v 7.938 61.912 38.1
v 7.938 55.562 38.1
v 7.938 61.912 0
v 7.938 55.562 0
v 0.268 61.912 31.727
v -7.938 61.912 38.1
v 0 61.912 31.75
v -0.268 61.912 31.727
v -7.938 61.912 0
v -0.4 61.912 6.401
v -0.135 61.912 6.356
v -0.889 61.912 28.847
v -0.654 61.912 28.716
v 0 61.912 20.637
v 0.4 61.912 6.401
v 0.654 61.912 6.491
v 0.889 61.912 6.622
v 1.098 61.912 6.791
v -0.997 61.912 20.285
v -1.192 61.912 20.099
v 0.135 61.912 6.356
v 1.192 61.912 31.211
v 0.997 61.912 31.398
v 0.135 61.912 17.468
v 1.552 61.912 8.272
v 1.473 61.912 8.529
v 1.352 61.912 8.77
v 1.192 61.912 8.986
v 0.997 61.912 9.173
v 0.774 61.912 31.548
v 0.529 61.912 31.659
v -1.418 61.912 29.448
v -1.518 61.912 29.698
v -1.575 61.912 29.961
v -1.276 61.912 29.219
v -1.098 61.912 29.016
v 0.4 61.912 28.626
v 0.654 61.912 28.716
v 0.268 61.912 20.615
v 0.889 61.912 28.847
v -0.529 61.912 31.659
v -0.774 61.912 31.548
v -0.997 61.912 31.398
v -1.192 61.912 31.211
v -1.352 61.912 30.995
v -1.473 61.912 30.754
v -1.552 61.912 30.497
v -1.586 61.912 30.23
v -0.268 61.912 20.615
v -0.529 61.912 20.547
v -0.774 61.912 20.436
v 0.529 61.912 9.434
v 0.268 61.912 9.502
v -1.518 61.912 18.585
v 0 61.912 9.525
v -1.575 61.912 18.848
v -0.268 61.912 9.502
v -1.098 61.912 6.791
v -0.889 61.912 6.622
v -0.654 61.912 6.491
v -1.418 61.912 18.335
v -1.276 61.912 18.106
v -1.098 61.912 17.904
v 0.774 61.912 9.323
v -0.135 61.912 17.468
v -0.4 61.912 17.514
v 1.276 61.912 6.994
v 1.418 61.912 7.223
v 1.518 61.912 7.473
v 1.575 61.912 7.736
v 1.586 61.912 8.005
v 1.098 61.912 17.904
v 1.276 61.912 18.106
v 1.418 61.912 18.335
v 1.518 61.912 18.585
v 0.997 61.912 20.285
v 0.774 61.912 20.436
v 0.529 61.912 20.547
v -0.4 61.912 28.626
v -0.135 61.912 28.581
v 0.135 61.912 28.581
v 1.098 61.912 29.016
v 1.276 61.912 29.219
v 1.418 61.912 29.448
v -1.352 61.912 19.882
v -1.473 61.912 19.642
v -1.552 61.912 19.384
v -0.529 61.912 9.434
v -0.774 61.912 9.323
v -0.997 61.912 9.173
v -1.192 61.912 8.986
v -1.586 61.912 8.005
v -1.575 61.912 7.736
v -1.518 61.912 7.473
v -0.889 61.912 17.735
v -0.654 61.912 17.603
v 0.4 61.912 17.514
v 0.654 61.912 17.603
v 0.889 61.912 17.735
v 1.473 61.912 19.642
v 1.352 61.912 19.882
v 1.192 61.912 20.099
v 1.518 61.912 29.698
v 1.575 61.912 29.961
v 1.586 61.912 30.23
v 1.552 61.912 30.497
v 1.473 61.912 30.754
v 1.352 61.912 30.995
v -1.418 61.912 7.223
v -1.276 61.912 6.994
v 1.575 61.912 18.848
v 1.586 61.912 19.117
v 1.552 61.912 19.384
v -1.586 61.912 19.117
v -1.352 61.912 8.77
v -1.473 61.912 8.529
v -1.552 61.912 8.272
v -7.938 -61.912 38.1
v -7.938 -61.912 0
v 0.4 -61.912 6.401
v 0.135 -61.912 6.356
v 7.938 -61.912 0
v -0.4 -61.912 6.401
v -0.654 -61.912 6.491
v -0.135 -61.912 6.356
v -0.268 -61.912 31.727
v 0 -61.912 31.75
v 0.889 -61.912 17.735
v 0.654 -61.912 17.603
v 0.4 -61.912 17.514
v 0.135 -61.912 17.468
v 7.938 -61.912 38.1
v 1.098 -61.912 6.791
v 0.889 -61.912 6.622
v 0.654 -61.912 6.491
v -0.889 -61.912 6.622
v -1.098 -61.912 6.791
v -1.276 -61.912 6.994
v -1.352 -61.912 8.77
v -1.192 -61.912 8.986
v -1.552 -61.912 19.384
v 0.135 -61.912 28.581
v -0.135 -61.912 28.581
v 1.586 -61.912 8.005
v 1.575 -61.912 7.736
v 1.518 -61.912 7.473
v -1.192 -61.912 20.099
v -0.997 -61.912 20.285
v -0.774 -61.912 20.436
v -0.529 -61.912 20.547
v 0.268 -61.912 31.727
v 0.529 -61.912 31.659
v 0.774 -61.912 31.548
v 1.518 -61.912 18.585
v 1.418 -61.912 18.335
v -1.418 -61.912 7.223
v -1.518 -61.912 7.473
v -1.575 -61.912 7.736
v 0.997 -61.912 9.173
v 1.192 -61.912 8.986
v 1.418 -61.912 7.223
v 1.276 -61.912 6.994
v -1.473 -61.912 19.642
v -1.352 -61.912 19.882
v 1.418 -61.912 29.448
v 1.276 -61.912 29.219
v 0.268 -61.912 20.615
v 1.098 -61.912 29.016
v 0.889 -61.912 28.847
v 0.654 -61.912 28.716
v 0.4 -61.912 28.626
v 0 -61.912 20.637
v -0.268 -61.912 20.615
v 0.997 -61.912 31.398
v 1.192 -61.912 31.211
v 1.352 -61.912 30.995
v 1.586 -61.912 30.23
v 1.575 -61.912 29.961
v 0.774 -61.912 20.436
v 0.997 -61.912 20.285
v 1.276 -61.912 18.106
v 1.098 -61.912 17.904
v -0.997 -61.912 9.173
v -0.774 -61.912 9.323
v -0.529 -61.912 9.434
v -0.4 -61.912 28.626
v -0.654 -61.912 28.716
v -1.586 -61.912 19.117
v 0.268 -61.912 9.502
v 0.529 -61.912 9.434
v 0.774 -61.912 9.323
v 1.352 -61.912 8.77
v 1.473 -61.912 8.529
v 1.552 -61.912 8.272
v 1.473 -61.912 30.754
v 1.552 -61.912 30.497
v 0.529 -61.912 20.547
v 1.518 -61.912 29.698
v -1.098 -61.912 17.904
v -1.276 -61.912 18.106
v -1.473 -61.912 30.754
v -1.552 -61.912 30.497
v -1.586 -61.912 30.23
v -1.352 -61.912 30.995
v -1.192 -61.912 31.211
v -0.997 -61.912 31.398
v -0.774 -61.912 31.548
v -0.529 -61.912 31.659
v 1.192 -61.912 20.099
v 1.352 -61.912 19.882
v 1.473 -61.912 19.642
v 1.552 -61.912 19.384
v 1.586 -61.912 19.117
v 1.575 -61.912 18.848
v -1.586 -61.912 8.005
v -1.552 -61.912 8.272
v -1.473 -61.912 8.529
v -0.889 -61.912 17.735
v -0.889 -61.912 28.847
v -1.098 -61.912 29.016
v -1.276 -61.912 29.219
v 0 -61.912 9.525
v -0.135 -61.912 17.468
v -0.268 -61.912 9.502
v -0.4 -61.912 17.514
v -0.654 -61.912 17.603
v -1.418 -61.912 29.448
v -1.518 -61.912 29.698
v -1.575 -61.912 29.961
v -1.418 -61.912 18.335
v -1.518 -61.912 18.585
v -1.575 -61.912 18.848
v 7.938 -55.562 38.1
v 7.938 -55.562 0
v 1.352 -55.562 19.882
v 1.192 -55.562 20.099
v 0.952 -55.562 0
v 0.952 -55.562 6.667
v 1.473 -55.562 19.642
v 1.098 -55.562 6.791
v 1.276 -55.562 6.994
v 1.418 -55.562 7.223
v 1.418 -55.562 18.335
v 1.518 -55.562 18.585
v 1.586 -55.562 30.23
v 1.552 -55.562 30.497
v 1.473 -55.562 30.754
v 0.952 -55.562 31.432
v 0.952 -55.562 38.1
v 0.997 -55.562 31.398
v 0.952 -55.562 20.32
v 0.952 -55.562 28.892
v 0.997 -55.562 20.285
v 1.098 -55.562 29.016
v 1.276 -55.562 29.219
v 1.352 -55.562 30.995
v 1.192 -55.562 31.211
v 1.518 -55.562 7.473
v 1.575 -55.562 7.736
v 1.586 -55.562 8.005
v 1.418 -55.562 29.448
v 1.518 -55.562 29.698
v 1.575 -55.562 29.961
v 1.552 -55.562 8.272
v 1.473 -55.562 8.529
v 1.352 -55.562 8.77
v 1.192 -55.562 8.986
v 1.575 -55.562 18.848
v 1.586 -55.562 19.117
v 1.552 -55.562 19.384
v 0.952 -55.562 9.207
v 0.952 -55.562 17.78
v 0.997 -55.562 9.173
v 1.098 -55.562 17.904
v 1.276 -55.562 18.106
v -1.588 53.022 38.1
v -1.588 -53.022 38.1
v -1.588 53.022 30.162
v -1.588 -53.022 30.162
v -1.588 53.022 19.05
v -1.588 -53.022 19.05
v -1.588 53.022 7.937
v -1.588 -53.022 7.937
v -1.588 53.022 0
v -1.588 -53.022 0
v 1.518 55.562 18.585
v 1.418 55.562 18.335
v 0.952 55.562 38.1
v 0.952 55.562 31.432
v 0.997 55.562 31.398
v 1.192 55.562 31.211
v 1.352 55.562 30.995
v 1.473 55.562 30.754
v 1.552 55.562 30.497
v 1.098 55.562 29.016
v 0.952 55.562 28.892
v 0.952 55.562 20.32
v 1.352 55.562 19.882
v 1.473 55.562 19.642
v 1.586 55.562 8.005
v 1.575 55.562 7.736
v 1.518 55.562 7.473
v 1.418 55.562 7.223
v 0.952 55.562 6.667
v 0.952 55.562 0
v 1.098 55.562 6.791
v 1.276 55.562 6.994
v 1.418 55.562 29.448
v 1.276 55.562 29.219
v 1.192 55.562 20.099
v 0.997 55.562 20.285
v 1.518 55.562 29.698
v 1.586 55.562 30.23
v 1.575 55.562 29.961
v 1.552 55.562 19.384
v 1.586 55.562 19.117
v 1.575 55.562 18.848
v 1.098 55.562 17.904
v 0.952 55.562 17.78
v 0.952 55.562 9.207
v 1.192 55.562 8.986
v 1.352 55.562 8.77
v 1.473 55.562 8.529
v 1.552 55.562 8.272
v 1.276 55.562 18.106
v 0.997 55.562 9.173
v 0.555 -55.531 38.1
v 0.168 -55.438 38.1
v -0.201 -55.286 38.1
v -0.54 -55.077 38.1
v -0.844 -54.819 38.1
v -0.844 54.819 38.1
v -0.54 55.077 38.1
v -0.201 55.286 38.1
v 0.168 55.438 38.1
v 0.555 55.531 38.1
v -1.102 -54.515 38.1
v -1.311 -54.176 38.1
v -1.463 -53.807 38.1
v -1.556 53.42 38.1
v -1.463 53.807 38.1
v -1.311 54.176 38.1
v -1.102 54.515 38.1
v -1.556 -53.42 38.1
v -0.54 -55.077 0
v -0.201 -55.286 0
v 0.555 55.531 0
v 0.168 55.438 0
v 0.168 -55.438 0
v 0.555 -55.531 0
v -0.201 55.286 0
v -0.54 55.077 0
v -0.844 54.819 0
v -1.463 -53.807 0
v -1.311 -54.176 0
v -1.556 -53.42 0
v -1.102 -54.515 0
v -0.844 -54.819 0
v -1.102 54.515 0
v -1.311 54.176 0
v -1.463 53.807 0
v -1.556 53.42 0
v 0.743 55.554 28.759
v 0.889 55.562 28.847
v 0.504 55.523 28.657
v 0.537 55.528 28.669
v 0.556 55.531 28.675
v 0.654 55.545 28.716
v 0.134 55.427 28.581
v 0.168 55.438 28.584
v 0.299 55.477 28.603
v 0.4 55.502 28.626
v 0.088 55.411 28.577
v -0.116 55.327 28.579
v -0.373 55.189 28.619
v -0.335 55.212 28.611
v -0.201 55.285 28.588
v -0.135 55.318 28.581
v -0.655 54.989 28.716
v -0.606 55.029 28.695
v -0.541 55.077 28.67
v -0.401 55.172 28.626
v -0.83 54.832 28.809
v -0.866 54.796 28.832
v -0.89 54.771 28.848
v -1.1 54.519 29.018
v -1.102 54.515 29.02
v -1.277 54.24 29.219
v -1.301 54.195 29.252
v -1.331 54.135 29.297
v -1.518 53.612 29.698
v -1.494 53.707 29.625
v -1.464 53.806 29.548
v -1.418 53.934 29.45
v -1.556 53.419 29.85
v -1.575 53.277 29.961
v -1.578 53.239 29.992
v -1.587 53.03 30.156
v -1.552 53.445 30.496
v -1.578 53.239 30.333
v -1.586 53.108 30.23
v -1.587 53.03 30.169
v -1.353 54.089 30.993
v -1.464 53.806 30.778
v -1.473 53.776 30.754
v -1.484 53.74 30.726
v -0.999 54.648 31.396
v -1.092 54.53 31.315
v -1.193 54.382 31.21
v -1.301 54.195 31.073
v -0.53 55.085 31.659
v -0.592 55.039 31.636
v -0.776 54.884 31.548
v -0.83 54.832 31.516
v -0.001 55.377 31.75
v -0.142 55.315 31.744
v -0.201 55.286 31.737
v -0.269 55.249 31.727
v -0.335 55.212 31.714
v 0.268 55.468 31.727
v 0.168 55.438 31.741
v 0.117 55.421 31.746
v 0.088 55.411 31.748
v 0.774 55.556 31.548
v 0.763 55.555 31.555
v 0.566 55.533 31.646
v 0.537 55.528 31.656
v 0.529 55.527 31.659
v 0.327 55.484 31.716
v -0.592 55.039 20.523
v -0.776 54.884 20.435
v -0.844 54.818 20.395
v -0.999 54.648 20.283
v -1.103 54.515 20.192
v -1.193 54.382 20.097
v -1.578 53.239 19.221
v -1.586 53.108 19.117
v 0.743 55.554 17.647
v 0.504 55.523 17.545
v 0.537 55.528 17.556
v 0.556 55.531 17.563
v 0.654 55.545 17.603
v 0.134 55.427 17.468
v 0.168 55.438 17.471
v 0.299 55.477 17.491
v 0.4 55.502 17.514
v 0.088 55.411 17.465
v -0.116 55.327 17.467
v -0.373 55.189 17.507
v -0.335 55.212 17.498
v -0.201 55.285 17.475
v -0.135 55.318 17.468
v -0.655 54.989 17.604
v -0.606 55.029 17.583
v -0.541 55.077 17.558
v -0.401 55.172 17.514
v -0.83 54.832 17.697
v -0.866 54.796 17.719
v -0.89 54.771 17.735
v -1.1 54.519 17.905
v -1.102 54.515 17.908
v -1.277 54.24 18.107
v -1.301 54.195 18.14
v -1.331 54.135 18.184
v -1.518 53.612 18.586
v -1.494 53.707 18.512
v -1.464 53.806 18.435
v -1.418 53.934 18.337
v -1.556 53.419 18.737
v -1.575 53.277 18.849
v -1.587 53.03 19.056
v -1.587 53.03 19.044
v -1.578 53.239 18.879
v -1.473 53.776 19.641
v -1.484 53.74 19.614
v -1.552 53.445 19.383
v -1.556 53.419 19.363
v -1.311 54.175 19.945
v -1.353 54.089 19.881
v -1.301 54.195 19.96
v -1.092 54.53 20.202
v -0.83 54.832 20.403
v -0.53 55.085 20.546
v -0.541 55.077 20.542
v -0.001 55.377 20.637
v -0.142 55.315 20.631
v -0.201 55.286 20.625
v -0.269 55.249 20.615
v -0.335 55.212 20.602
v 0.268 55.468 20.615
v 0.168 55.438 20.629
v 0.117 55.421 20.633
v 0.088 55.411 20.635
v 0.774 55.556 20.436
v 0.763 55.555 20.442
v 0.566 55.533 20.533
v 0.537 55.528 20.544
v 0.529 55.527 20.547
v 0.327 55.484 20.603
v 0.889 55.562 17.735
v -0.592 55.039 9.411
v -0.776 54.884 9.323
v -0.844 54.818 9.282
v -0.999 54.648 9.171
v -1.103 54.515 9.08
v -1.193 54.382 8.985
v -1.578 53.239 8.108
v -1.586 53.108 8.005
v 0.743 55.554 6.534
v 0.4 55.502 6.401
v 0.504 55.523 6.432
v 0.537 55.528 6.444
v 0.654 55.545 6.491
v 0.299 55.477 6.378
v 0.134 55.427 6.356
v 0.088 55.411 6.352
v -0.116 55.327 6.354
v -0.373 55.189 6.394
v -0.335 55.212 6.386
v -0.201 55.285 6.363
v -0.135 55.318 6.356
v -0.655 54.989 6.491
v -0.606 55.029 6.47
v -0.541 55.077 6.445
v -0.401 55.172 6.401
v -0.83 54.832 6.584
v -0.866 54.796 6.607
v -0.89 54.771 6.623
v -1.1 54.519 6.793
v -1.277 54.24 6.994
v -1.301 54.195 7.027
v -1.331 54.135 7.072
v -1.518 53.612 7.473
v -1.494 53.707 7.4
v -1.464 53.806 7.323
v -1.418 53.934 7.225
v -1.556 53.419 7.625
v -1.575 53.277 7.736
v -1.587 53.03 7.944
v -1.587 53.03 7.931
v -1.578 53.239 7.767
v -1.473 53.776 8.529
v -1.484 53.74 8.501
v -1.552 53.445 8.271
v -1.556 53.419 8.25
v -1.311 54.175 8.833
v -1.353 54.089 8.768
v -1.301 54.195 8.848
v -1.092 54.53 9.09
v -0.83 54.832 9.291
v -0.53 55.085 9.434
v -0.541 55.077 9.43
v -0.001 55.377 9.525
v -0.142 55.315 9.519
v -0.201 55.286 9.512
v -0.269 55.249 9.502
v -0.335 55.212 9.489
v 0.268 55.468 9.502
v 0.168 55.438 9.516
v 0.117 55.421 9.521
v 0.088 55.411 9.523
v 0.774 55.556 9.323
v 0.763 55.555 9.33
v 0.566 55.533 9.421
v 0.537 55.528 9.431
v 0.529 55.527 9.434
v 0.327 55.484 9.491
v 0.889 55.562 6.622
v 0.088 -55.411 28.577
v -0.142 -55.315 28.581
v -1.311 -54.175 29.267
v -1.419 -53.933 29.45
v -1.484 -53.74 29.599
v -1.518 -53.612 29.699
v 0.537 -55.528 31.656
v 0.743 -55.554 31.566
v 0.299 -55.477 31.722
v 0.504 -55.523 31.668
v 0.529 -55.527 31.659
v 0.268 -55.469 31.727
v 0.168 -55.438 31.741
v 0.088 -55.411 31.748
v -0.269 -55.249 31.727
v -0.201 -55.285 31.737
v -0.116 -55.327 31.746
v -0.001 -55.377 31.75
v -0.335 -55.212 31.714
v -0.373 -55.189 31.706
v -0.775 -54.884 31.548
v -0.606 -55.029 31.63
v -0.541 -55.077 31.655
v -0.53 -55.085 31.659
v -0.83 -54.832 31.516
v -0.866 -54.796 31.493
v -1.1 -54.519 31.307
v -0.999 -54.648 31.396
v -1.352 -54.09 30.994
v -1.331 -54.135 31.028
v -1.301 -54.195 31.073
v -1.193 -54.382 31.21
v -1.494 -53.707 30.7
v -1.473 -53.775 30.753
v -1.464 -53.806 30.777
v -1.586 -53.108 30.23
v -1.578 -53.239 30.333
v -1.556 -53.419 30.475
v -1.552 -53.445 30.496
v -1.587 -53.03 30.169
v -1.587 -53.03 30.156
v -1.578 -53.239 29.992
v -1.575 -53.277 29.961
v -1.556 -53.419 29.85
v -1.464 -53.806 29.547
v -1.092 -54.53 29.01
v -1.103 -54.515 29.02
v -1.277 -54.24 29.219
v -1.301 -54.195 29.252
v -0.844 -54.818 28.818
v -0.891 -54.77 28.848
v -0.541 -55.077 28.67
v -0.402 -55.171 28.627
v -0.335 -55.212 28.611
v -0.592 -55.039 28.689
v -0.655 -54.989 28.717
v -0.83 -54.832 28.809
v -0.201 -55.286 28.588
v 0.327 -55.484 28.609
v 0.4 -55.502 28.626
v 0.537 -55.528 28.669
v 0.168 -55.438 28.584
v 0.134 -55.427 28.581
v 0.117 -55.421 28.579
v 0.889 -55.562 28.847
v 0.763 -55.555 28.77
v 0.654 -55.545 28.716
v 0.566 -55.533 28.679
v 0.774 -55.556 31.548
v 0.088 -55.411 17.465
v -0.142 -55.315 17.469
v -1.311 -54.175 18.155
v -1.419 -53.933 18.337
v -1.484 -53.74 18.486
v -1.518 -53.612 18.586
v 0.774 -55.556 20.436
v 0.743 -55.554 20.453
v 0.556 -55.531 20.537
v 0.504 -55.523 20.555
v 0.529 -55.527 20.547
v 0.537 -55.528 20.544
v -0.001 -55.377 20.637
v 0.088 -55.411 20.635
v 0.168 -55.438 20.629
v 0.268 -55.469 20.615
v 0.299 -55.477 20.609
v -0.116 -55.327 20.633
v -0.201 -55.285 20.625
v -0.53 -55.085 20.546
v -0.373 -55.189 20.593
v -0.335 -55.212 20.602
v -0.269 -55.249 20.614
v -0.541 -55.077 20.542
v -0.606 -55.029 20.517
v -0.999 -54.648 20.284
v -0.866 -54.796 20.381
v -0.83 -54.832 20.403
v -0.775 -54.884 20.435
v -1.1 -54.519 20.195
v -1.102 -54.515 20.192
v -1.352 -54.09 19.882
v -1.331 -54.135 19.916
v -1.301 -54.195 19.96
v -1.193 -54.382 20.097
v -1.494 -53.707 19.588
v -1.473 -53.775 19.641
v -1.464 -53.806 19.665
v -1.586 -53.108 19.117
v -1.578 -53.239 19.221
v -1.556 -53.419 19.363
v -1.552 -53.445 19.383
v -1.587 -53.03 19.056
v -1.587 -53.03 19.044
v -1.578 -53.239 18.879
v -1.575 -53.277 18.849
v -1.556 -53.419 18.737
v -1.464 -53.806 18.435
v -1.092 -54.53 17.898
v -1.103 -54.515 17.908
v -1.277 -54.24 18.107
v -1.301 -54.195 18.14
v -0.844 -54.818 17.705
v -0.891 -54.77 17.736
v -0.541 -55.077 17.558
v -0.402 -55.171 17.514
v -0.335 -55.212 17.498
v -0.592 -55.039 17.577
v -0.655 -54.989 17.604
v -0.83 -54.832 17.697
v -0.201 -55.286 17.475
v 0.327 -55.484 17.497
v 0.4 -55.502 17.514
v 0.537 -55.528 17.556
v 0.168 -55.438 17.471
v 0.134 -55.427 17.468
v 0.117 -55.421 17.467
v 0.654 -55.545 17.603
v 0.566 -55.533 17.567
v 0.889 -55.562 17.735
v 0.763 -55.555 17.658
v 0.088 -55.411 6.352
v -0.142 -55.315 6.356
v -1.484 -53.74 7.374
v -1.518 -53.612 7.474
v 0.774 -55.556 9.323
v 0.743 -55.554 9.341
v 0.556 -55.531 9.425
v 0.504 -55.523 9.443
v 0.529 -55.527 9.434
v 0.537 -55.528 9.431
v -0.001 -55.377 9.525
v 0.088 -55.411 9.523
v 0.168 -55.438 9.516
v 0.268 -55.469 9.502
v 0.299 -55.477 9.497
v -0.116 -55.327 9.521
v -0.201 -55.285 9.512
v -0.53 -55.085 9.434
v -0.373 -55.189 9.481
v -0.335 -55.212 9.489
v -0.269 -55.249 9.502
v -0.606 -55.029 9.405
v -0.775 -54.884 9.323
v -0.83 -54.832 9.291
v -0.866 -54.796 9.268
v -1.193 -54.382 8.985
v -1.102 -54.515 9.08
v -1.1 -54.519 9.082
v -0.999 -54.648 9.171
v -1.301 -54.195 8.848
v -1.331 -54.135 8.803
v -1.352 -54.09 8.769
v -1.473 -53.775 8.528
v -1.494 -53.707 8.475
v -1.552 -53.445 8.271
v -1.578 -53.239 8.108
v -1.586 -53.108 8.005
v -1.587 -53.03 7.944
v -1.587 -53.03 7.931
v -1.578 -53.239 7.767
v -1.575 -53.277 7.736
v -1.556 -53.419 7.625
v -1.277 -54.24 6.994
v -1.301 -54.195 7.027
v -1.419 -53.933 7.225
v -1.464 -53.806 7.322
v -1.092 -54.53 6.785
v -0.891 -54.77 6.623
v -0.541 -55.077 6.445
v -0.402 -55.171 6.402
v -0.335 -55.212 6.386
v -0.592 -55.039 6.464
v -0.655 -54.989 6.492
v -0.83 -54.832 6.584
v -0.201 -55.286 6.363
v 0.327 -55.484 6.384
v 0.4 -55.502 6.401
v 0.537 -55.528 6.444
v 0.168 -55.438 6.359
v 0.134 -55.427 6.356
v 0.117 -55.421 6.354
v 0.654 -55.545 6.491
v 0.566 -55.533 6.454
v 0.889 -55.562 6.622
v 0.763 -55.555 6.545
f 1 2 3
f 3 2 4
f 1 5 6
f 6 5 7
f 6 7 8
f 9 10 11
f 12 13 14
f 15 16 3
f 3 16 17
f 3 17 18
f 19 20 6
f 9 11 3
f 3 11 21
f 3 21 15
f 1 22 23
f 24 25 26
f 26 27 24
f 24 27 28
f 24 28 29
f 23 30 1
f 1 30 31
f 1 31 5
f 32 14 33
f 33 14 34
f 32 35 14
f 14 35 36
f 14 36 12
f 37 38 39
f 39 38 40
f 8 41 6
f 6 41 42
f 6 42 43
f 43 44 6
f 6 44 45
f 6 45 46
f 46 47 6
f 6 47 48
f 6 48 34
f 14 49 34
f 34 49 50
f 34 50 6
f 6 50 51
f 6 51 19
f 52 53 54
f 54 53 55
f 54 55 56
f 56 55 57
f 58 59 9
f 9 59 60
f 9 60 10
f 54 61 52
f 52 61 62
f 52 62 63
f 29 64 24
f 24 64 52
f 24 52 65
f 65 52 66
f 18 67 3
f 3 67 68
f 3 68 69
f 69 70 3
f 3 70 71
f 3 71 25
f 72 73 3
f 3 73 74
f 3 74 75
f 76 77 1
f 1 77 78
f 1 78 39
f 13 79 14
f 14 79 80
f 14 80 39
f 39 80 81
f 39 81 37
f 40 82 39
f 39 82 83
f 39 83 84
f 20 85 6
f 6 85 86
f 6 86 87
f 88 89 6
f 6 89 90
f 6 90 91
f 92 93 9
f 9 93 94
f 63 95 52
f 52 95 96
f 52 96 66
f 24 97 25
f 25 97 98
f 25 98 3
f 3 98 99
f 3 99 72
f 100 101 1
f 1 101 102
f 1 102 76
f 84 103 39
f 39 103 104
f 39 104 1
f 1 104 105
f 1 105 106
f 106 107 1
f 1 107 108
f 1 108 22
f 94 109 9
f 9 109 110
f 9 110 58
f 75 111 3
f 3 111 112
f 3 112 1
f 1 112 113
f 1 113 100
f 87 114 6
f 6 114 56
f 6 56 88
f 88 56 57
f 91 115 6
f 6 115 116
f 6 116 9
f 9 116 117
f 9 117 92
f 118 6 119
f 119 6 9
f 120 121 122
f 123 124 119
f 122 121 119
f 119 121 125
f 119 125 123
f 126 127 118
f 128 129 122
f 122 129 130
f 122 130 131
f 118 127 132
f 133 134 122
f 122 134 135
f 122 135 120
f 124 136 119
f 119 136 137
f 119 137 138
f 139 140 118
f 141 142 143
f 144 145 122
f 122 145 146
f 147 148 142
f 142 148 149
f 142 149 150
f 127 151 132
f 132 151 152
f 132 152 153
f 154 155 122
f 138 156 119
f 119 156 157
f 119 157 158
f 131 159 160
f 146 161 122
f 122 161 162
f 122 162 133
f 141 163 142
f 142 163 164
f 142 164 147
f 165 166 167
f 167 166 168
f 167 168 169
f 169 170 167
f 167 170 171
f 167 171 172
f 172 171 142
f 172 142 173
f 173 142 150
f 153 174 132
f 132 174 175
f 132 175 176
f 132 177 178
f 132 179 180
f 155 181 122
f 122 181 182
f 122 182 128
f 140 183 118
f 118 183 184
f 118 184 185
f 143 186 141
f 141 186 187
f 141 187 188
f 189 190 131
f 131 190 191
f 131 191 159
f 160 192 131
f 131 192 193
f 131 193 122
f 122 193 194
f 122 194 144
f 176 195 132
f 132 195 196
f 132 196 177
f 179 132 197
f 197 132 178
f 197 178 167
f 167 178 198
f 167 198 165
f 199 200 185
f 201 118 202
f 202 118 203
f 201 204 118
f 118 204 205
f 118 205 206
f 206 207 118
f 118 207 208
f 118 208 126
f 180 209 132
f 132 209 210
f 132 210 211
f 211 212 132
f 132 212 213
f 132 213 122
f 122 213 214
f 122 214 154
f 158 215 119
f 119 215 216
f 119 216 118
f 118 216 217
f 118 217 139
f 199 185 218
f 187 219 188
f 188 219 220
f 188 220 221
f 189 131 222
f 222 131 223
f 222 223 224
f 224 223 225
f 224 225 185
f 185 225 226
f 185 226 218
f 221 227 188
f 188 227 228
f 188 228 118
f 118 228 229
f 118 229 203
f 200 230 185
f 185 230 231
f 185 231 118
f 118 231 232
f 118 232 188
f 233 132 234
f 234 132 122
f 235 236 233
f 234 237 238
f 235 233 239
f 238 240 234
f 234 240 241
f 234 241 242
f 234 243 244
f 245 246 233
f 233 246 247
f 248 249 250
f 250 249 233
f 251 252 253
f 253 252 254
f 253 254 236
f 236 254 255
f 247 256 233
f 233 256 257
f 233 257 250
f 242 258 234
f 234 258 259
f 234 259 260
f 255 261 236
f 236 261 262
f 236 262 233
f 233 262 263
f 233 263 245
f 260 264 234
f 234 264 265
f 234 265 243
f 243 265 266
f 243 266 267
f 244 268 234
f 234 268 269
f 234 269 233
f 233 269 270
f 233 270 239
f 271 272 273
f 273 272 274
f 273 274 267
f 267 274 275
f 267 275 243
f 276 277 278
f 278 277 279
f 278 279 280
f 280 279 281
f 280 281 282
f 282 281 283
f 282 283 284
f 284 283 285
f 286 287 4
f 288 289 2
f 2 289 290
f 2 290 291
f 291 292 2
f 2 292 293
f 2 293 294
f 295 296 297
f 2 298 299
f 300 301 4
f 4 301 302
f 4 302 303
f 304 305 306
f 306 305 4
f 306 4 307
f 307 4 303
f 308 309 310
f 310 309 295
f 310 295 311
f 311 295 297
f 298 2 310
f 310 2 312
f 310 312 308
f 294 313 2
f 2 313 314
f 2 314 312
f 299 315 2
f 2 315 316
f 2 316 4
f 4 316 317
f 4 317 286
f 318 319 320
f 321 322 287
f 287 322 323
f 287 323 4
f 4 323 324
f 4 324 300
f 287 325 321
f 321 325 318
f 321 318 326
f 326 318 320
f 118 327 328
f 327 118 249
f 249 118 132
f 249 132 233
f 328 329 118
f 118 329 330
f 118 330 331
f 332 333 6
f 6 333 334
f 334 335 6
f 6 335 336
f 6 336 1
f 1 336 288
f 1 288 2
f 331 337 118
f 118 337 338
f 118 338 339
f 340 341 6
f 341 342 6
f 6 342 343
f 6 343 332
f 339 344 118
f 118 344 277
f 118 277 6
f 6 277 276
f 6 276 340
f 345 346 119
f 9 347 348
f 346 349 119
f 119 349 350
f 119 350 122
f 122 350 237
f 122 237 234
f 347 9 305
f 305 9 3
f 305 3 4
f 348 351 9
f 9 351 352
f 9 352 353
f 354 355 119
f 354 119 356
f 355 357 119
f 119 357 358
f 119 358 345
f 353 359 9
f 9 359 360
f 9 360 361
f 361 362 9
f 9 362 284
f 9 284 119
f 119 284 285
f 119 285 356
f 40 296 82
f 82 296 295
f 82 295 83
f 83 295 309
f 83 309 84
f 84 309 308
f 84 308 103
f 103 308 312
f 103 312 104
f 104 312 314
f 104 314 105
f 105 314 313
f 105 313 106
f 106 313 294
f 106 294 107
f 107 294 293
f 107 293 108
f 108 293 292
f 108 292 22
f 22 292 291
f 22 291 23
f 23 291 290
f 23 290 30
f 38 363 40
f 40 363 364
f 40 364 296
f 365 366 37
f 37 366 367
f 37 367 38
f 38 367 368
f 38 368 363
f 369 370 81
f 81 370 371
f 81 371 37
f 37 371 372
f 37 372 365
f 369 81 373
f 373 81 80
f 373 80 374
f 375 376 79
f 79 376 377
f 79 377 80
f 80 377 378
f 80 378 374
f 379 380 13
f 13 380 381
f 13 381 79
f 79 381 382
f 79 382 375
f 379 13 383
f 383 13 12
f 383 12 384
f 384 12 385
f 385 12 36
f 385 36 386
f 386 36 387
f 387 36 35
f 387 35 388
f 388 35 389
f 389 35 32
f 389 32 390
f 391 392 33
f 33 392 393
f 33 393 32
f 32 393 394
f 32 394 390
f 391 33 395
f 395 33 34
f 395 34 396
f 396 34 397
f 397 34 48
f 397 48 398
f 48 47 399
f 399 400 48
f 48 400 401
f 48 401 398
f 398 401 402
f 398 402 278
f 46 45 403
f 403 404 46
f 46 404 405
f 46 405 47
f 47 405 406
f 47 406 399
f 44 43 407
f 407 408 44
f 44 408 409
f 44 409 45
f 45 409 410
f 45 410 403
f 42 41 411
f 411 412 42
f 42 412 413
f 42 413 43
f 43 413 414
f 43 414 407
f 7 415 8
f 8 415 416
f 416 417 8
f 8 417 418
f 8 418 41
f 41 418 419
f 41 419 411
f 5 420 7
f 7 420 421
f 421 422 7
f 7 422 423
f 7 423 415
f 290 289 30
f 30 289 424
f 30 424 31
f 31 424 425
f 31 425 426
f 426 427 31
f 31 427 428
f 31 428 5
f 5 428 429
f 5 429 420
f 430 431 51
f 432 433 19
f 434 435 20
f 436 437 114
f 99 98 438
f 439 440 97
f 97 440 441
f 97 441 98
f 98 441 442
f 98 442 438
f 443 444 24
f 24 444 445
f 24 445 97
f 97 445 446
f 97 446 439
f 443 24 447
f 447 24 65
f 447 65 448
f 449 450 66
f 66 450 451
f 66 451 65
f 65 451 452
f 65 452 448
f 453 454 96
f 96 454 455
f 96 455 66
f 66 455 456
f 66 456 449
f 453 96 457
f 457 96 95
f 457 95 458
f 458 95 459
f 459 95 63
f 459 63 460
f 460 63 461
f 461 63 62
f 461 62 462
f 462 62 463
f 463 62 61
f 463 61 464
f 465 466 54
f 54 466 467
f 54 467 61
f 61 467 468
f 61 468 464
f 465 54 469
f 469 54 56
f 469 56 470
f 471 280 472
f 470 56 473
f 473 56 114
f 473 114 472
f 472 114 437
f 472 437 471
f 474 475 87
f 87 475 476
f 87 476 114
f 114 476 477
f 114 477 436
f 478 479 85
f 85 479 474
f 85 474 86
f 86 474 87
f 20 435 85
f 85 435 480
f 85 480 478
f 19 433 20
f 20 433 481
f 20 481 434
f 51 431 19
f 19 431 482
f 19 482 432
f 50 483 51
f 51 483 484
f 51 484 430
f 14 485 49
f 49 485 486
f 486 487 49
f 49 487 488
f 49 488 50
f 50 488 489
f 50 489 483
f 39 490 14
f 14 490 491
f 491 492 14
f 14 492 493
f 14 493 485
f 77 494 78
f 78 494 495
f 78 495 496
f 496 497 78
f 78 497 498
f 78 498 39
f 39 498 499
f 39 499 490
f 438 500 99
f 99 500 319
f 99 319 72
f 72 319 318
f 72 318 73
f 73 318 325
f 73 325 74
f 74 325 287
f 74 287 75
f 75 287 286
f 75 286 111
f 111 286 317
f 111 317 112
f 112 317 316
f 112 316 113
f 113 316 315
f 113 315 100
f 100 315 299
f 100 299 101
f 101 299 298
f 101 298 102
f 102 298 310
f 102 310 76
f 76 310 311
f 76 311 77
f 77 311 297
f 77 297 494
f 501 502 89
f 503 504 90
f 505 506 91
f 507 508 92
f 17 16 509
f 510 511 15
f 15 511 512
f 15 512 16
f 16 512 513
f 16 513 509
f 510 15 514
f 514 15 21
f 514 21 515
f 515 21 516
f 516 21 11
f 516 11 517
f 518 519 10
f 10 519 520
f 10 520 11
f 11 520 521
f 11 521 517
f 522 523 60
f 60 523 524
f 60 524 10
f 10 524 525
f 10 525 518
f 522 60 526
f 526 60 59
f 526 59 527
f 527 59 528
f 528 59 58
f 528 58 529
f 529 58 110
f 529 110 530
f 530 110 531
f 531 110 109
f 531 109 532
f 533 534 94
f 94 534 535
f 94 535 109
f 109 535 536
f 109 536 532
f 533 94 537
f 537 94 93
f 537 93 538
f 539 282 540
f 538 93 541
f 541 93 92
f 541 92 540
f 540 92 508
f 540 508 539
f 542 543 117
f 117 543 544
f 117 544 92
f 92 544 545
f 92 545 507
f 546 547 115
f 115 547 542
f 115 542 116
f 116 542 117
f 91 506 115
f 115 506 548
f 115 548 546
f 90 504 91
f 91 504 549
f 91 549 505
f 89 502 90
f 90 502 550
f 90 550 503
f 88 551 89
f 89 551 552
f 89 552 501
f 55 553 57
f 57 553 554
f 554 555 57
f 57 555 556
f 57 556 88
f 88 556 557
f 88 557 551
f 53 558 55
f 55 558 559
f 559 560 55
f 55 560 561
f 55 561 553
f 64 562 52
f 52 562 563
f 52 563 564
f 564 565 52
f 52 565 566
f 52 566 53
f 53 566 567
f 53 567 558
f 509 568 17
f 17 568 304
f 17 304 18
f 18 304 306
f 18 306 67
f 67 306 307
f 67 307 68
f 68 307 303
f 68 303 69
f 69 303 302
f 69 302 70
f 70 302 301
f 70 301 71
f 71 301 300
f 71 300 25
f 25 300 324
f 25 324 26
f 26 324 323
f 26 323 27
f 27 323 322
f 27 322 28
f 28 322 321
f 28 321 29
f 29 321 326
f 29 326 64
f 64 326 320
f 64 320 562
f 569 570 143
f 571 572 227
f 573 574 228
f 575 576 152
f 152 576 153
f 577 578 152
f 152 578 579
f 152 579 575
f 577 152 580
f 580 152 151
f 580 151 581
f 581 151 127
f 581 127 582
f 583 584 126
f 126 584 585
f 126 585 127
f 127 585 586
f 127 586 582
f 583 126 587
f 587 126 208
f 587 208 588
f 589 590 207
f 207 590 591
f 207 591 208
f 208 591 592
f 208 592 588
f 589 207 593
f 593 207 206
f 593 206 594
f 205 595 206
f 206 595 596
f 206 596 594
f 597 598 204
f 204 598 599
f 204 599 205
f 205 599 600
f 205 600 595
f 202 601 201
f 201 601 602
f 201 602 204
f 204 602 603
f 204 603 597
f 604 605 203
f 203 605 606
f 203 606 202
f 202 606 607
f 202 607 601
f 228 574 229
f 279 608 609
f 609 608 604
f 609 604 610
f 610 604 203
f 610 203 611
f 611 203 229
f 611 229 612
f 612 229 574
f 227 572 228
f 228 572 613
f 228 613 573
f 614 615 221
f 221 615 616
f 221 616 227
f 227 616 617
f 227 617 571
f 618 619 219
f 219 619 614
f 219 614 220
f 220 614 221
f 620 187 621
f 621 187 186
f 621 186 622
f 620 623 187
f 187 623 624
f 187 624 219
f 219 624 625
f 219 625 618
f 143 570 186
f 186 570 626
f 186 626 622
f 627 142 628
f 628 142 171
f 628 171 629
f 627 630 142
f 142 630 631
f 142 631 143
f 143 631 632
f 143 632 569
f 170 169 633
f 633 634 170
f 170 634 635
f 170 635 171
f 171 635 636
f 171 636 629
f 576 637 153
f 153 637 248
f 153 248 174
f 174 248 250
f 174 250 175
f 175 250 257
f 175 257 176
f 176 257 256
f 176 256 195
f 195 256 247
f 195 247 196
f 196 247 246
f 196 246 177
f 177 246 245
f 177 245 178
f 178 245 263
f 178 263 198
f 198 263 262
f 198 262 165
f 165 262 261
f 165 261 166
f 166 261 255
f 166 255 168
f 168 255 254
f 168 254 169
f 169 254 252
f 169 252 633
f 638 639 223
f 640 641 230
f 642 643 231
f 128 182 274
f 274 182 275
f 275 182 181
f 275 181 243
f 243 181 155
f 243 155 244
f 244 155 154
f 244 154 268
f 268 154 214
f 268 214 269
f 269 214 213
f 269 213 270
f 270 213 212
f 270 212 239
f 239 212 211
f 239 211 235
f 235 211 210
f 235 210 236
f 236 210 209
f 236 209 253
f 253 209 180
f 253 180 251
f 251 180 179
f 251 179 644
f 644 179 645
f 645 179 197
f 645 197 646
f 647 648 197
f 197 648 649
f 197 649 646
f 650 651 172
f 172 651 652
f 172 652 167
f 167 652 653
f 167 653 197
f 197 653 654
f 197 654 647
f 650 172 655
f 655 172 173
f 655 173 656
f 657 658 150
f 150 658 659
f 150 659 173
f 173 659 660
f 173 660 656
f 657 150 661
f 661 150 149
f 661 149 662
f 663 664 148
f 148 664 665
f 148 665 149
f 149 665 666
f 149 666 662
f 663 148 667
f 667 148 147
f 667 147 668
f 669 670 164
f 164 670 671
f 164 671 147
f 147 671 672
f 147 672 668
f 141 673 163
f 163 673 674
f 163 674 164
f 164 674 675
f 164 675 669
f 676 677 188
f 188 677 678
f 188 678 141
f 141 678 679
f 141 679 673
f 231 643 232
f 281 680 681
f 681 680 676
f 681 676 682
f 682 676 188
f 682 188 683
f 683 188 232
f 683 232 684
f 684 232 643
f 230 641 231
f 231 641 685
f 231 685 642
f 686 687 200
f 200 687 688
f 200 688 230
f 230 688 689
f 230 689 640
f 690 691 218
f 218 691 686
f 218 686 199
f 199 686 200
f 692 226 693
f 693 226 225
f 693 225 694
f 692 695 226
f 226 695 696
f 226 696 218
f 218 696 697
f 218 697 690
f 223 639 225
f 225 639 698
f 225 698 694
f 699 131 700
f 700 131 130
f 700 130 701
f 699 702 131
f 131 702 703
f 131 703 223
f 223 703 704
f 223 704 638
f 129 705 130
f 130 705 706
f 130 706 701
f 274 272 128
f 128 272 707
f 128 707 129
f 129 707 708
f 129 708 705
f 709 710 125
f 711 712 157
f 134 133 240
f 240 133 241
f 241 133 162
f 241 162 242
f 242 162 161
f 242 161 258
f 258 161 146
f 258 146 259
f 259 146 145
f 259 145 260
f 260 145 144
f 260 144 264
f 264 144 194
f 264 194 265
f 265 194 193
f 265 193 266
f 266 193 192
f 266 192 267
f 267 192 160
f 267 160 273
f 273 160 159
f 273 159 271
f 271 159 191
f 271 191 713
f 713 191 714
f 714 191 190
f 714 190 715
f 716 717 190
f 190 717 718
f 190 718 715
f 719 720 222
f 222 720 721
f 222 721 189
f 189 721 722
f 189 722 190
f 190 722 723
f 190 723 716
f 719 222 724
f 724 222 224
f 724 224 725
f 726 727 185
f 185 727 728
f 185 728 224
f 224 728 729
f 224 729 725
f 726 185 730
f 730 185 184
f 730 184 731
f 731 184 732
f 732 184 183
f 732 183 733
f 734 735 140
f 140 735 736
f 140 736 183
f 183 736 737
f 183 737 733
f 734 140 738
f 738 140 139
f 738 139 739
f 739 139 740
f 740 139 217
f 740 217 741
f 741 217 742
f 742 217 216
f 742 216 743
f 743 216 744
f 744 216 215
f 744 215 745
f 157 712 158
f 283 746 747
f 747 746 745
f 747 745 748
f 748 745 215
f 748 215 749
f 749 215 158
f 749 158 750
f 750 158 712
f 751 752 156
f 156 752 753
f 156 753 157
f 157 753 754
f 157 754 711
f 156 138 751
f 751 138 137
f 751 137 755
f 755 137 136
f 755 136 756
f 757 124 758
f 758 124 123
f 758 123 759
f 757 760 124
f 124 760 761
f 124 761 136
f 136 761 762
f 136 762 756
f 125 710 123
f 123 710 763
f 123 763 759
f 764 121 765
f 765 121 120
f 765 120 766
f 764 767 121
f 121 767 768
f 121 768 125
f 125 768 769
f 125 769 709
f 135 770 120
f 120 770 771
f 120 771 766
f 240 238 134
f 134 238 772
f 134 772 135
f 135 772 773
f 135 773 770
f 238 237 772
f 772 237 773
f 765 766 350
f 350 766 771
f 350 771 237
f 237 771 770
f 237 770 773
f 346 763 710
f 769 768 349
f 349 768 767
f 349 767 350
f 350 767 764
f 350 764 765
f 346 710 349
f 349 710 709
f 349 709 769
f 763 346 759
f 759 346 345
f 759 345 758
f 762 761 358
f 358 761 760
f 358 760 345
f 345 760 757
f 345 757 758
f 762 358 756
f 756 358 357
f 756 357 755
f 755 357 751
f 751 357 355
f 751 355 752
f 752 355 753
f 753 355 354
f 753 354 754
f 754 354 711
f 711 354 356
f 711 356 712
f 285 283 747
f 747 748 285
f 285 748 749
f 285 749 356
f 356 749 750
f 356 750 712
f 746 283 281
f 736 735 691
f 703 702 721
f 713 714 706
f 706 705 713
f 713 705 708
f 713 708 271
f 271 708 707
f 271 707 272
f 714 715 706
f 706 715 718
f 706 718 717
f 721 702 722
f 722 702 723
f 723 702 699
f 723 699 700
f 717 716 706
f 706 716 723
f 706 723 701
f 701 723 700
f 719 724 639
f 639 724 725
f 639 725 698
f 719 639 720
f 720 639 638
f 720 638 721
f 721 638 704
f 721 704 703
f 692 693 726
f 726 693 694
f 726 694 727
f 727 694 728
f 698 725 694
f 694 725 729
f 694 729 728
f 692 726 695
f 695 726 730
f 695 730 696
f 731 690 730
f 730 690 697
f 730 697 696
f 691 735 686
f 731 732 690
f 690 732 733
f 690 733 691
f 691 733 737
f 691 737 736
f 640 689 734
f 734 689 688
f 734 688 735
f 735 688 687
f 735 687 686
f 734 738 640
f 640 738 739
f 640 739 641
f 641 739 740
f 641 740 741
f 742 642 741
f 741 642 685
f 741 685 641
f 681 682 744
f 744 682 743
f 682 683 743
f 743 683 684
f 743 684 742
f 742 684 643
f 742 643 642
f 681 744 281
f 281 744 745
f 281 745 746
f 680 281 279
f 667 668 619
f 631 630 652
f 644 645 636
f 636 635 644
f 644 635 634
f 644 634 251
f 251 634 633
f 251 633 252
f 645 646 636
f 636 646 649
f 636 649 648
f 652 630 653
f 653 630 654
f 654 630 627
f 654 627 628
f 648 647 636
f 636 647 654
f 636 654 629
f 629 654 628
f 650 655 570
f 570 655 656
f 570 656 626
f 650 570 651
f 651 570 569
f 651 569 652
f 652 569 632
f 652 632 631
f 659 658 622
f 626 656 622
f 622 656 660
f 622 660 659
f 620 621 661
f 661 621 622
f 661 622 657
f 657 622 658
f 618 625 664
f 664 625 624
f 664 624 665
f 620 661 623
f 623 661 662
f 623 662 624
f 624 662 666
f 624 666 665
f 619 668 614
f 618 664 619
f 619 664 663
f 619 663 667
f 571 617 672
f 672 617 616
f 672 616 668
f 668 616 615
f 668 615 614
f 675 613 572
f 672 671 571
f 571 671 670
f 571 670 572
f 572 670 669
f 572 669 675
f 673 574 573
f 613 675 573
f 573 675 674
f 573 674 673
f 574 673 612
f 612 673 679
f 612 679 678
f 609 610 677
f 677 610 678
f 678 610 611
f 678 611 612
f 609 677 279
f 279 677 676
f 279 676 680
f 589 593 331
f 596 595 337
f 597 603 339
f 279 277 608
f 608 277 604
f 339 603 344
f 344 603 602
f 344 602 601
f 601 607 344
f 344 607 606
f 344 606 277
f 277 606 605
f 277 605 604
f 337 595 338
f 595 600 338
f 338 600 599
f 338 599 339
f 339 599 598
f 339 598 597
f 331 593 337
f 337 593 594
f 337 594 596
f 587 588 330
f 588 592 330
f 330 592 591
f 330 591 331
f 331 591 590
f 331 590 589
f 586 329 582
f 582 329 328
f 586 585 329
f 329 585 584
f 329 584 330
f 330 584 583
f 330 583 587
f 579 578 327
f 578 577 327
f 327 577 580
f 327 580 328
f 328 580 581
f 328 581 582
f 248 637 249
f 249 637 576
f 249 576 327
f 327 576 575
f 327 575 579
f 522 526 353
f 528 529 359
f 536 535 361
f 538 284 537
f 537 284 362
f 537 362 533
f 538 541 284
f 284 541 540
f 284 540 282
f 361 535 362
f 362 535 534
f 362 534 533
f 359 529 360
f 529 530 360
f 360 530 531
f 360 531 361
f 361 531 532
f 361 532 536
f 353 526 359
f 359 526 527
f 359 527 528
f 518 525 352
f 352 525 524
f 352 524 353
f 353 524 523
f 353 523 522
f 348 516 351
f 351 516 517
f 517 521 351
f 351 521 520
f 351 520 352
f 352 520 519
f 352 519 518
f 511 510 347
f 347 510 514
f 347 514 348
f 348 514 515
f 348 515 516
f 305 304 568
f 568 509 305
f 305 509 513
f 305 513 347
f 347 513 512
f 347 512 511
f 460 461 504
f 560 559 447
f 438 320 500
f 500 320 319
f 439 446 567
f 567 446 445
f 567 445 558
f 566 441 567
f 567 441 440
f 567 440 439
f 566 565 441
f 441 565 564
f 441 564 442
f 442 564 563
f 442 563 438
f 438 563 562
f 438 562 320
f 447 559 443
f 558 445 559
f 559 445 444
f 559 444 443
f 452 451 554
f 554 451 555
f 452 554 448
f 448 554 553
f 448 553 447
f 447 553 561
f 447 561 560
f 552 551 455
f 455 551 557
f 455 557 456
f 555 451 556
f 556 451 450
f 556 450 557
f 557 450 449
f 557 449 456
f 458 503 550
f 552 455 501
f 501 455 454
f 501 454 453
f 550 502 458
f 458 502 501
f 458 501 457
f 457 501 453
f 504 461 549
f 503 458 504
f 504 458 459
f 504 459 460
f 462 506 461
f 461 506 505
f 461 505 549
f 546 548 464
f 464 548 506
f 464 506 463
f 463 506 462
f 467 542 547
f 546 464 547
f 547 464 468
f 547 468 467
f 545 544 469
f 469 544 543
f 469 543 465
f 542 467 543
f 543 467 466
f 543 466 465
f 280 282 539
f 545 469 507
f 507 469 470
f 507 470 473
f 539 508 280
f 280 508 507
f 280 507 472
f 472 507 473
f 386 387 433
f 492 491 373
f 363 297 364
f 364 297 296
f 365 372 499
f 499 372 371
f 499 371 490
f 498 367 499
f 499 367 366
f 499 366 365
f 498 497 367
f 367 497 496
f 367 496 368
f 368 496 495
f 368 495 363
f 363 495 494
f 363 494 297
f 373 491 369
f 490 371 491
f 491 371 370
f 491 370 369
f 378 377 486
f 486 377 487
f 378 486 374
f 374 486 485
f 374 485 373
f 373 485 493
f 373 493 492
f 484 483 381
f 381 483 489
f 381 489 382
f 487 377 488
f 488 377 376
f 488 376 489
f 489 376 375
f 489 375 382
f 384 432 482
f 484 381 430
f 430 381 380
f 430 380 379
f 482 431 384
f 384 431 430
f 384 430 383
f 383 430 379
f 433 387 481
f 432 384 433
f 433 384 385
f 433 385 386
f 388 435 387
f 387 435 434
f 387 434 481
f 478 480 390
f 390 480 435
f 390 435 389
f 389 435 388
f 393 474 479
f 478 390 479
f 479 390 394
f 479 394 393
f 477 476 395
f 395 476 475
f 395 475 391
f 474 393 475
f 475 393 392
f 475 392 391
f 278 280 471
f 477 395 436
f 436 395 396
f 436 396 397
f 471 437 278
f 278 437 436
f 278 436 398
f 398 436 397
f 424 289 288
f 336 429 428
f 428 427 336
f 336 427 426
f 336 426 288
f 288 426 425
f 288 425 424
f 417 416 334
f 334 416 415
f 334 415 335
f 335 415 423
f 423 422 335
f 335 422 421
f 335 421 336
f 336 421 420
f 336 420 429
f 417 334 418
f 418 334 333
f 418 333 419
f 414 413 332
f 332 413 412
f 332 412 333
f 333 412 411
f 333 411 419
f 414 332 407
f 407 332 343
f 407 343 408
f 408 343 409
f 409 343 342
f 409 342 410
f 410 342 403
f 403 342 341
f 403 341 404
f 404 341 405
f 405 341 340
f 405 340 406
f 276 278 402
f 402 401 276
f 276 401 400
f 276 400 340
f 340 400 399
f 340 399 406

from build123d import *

# Parameters (mm, degrees)
BOSS_EXTRUDE1_DEPTH = 38.1
SKETCH2_R           = 1.5875
CUT_EXTRUDE1_DEPTH  = 130.796935754
FILLET2_R           = 2.54


with BuildPart() as part:
    # Sketch1 → Boss-Extrude1 (new body)
    with BuildSketch(Plane.XY):
        Polygon((-7.9375, -61.9125), (7.9375, -61.9125), (7.9375, -55.5625), (-1.5875, -55.5625), (-1.5875, 55.5625), (7.9375, 55.5625), (7.9375, 61.9125), (-7.9375, 61.9125), align=None)
    extrude(amount=BOSS_EXTRUDE1_DEPTH)

    # Sketch2 → Cut-Extrude1 (cut, through all)
    with BuildSketch(Plane(origin=(0, 61.9125, 0), x_dir=(1, 0, 0), z_dir=(0, 1, 0))):
        with Locations(Location((0, -7.9375, 0), (0, 0, 270))):
            Circle(SKETCH2_R)
        with Locations(Location((0, -19.05, 0), (0, 0, 270))):
            Circle(SKETCH2_R)
        with Locations(Location((0, -30.1625, 0), (0, 0, 270))):
            Circle(SKETCH2_R)
    extrude(amount=-CUT_EXTRUDE1_DEPTH, mode=Mode.SUBTRACT)

    # Fillet2
    # the kernel refuses this fillet: 2.54 mm, written as the material it adds along each edge
    with BuildSketch(Plane(origin=(-1.5875, 55.5625, 30.1625), x_dir=(0, -1, 0), z_dir=(0, 0, 1))) as fillet2_piece_1_section:
        with BuildLine():
            CenterArc((FILLET2_R, FILLET2_R), FILLET2_R, 180, 90)
            Line((0, FILLET2_R), (0, 0))
            Line((0, 0), (FILLET2_R, 0))
        make_face()
    fillet2_piece_1 = extrude(amount=7.9375, mode=Mode.PRIVATE)
    fillet2_piece_1 = fillet2_piece_1 - Plane(origin=(0, 54.97769338, 30.1625), x_dir=(0, 0, 1), z_dir=(0, 1, 0)) * Cylinder(1.5875, 27, mode=Mode.PRIVATE)
    add(fillet2_piece_1)
    with BuildSketch(Plane(origin=(-1.5875, -55.5625, 30.1625), x_dir=(1, 0, 0), z_dir=(0, 0, 1))) as fillet2_piece_2_section:
        with BuildLine():
            CenterArc((FILLET2_R, FILLET2_R), FILLET2_R, 180, 90)
            Line((0, FILLET2_R), (0, 0))
            Line((0, 0), (FILLET2_R, 0))
        make_face()
    fillet2_piece_2 = extrude(amount=7.9375, mode=Mode.PRIVATE)
    fillet2_piece_2 = fillet2_piece_2 - Plane(origin=(0, -54.977693276, 30.1625), x_dir=(0, 0, 1), z_dir=(0, 1, 0)) * Cylinder(1.5875, 27, mode=Mode.PRIVATE)
    add(fillet2_piece_2)
    with BuildSketch(Plane(origin=(-1.5875, 55.5625, 19.05), x_dir=(0, -1, 0), z_dir=(0, 0, 1))) as fillet2_piece_3_section:
        with BuildLine():
            CenterArc((FILLET2_R, FILLET2_R), FILLET2_R, 180, 90)
            Line((0, FILLET2_R), (0, 0))
            Line((0, 0), (FILLET2_R, 0))
        make_face()
    fillet2_piece_3 = extrude(amount=11.1125, mode=Mode.PRIVATE)
    fillet2_piece_3 = fillet2_piece_3 - Plane(origin=(0, 54.968485011, 30.1625), x_dir=(0, 0, 1), z_dir=(0, 1, 0)) * Cylinder(1.5875, 33, mode=Mode.PRIVATE)
    fillet2_piece_3 = fillet2_piece_3 - Plane(origin=(0, 54.968485011, 19.05), x_dir=(0, 0, 1), z_dir=(0, 1, 0)) * Cylinder(1.5875, 33, mode=Mode.PRIVATE)
    add(fillet2_piece_3)
    with BuildSketch(Plane(origin=(-1.5875, 55.5625, 7.9375), x_dir=(0, -1, 0), z_dir=(0, 0, 1))) as fillet2_piece_4_section:
        with BuildLine():
            CenterArc((FILLET2_R, FILLET2_R), FILLET2_R, 180, 90)
            Line((0, FILLET2_R), (0, 0))
            Line((0, 0), (FILLET2_R, 0))
        make_face()
    fillet2_piece_4 = extrude(amount=11.1125, mode=Mode.PRIVATE)
    fillet2_piece_4 = fillet2_piece_4 - Plane(origin=(0, 54.968485011, 19.05), x_dir=(0, 0, 1), z_dir=(0, 1, 0)) * Cylinder(1.5875, 33, mode=Mode.PRIVATE)
    fillet2_piece_4 = fillet2_piece_4 - Plane(origin=(0, 54.968485011, 7.9375), x_dir=(0, 0, 1), z_dir=(0, 1, 0)) * Cylinder(1.5875, 33, mode=Mode.PRIVATE)
    add(fillet2_piece_4)
    with BuildSketch(Plane(origin=(-1.5875, 55.5625, 0), x_dir=(0, -1, 0), z_dir=(0, 0, 1))) as fillet2_piece_5_section:
        with BuildLine():
            CenterArc((FILLET2_R, FILLET2_R), FILLET2_R, 180, 90)
            Line((0, FILLET2_R), (0, 0))
            Line((0, 0), (FILLET2_R, 0))
        make_face()
    fillet2_piece_5 = extrude(amount=7.9375, mode=Mode.PRIVATE)
    fillet2_piece_5 = fillet2_piece_5 - Plane(origin=(0, 54.977693583, 7.9375), x_dir=(0, 0, 1), z_dir=(0, 1, 0)) * Cylinder(1.5875, 27, mode=Mode.PRIVATE)
    add(fillet2_piece_5)
    with BuildSketch(Plane(origin=(-1.5875, -55.5625, 19.05), x_dir=(1, 0, 0), z_dir=(0, 0, 1))) as fillet2_piece_6_section:
        with BuildLine():
            CenterArc((FILLET2_R, FILLET2_R), FILLET2_R, 180, 90)
            Line((0, FILLET2_R), (0, 0))
            Line((0, 0), (FILLET2_R, 0))
        make_face()
    fillet2_piece_6 = extrude(amount=11.1125, mode=Mode.PRIVATE)
    fillet2_piece_6 = fillet2_piece_6 - Plane(origin=(0, -54.968484791, 30.1625), x_dir=(0, 0, 1), z_dir=(0, 1, 0)) * Cylinder(1.5875, 33, mode=Mode.PRIVATE)
    fillet2_piece_6 = fillet2_piece_6 - Plane(origin=(0, -54.968484791, 19.05), x_dir=(0, 0, 1), z_dir=(0, 1, 0)) * Cylinder(1.5875, 33, mode=Mode.PRIVATE)
    add(fillet2_piece_6)
    with BuildSketch(Plane(origin=(-1.5875, -55.5625, 7.9375), x_dir=(1, 0, 0), z_dir=(0, 0, 1))) as fillet2_piece_7_section:
        with BuildLine():
            CenterArc((FILLET2_R, FILLET2_R), FILLET2_R, 180, 90)
            Line((0, FILLET2_R), (0, 0))
            Line((0, 0), (FILLET2_R, 0))
        make_face()
    fillet2_piece_7 = extrude(amount=11.1125, mode=Mode.PRIVATE)
    fillet2_piece_7 = fillet2_piece_7 - Plane(origin=(0, -54.968484789, 19.05), x_dir=(0, 0, 1), z_dir=(0, 1, 0)) * Cylinder(1.5875, 33, mode=Mode.PRIVATE)
    fillet2_piece_7 = fillet2_piece_7 - Plane(origin=(0, -54.968484789, 7.9375), x_dir=(0, 0, 1), z_dir=(0, 1, 0)) * Cylinder(1.5875, 33, mode=Mode.PRIVATE)
    add(fillet2_piece_7)
    with BuildSketch(Plane(origin=(-1.5875, -55.5625, 0), x_dir=(1, 0, 0), z_dir=(0, 0, 1))) as fillet2_piece_8_section:
        with BuildLine():
            CenterArc((FILLET2_R, FILLET2_R), FILLET2_R, 180, 90)
            Line((0, FILLET2_R), (0, 0))
            Line((0, 0), (FILLET2_R, 0))
        make_face()
    fillet2_piece_8 = extrude(amount=7.9375, mode=Mode.PRIVATE)
    fillet2_piece_8 = fillet2_piece_8 - Plane(origin=(0, -54.977693451, 7.9375), x_dir=(0, 0, 1), z_dir=(0, 1, 0)) * Cylinder(1.5875, 27, mode=Mode.PRIVATE)
    add(fillet2_piece_8)


solid = part.part
